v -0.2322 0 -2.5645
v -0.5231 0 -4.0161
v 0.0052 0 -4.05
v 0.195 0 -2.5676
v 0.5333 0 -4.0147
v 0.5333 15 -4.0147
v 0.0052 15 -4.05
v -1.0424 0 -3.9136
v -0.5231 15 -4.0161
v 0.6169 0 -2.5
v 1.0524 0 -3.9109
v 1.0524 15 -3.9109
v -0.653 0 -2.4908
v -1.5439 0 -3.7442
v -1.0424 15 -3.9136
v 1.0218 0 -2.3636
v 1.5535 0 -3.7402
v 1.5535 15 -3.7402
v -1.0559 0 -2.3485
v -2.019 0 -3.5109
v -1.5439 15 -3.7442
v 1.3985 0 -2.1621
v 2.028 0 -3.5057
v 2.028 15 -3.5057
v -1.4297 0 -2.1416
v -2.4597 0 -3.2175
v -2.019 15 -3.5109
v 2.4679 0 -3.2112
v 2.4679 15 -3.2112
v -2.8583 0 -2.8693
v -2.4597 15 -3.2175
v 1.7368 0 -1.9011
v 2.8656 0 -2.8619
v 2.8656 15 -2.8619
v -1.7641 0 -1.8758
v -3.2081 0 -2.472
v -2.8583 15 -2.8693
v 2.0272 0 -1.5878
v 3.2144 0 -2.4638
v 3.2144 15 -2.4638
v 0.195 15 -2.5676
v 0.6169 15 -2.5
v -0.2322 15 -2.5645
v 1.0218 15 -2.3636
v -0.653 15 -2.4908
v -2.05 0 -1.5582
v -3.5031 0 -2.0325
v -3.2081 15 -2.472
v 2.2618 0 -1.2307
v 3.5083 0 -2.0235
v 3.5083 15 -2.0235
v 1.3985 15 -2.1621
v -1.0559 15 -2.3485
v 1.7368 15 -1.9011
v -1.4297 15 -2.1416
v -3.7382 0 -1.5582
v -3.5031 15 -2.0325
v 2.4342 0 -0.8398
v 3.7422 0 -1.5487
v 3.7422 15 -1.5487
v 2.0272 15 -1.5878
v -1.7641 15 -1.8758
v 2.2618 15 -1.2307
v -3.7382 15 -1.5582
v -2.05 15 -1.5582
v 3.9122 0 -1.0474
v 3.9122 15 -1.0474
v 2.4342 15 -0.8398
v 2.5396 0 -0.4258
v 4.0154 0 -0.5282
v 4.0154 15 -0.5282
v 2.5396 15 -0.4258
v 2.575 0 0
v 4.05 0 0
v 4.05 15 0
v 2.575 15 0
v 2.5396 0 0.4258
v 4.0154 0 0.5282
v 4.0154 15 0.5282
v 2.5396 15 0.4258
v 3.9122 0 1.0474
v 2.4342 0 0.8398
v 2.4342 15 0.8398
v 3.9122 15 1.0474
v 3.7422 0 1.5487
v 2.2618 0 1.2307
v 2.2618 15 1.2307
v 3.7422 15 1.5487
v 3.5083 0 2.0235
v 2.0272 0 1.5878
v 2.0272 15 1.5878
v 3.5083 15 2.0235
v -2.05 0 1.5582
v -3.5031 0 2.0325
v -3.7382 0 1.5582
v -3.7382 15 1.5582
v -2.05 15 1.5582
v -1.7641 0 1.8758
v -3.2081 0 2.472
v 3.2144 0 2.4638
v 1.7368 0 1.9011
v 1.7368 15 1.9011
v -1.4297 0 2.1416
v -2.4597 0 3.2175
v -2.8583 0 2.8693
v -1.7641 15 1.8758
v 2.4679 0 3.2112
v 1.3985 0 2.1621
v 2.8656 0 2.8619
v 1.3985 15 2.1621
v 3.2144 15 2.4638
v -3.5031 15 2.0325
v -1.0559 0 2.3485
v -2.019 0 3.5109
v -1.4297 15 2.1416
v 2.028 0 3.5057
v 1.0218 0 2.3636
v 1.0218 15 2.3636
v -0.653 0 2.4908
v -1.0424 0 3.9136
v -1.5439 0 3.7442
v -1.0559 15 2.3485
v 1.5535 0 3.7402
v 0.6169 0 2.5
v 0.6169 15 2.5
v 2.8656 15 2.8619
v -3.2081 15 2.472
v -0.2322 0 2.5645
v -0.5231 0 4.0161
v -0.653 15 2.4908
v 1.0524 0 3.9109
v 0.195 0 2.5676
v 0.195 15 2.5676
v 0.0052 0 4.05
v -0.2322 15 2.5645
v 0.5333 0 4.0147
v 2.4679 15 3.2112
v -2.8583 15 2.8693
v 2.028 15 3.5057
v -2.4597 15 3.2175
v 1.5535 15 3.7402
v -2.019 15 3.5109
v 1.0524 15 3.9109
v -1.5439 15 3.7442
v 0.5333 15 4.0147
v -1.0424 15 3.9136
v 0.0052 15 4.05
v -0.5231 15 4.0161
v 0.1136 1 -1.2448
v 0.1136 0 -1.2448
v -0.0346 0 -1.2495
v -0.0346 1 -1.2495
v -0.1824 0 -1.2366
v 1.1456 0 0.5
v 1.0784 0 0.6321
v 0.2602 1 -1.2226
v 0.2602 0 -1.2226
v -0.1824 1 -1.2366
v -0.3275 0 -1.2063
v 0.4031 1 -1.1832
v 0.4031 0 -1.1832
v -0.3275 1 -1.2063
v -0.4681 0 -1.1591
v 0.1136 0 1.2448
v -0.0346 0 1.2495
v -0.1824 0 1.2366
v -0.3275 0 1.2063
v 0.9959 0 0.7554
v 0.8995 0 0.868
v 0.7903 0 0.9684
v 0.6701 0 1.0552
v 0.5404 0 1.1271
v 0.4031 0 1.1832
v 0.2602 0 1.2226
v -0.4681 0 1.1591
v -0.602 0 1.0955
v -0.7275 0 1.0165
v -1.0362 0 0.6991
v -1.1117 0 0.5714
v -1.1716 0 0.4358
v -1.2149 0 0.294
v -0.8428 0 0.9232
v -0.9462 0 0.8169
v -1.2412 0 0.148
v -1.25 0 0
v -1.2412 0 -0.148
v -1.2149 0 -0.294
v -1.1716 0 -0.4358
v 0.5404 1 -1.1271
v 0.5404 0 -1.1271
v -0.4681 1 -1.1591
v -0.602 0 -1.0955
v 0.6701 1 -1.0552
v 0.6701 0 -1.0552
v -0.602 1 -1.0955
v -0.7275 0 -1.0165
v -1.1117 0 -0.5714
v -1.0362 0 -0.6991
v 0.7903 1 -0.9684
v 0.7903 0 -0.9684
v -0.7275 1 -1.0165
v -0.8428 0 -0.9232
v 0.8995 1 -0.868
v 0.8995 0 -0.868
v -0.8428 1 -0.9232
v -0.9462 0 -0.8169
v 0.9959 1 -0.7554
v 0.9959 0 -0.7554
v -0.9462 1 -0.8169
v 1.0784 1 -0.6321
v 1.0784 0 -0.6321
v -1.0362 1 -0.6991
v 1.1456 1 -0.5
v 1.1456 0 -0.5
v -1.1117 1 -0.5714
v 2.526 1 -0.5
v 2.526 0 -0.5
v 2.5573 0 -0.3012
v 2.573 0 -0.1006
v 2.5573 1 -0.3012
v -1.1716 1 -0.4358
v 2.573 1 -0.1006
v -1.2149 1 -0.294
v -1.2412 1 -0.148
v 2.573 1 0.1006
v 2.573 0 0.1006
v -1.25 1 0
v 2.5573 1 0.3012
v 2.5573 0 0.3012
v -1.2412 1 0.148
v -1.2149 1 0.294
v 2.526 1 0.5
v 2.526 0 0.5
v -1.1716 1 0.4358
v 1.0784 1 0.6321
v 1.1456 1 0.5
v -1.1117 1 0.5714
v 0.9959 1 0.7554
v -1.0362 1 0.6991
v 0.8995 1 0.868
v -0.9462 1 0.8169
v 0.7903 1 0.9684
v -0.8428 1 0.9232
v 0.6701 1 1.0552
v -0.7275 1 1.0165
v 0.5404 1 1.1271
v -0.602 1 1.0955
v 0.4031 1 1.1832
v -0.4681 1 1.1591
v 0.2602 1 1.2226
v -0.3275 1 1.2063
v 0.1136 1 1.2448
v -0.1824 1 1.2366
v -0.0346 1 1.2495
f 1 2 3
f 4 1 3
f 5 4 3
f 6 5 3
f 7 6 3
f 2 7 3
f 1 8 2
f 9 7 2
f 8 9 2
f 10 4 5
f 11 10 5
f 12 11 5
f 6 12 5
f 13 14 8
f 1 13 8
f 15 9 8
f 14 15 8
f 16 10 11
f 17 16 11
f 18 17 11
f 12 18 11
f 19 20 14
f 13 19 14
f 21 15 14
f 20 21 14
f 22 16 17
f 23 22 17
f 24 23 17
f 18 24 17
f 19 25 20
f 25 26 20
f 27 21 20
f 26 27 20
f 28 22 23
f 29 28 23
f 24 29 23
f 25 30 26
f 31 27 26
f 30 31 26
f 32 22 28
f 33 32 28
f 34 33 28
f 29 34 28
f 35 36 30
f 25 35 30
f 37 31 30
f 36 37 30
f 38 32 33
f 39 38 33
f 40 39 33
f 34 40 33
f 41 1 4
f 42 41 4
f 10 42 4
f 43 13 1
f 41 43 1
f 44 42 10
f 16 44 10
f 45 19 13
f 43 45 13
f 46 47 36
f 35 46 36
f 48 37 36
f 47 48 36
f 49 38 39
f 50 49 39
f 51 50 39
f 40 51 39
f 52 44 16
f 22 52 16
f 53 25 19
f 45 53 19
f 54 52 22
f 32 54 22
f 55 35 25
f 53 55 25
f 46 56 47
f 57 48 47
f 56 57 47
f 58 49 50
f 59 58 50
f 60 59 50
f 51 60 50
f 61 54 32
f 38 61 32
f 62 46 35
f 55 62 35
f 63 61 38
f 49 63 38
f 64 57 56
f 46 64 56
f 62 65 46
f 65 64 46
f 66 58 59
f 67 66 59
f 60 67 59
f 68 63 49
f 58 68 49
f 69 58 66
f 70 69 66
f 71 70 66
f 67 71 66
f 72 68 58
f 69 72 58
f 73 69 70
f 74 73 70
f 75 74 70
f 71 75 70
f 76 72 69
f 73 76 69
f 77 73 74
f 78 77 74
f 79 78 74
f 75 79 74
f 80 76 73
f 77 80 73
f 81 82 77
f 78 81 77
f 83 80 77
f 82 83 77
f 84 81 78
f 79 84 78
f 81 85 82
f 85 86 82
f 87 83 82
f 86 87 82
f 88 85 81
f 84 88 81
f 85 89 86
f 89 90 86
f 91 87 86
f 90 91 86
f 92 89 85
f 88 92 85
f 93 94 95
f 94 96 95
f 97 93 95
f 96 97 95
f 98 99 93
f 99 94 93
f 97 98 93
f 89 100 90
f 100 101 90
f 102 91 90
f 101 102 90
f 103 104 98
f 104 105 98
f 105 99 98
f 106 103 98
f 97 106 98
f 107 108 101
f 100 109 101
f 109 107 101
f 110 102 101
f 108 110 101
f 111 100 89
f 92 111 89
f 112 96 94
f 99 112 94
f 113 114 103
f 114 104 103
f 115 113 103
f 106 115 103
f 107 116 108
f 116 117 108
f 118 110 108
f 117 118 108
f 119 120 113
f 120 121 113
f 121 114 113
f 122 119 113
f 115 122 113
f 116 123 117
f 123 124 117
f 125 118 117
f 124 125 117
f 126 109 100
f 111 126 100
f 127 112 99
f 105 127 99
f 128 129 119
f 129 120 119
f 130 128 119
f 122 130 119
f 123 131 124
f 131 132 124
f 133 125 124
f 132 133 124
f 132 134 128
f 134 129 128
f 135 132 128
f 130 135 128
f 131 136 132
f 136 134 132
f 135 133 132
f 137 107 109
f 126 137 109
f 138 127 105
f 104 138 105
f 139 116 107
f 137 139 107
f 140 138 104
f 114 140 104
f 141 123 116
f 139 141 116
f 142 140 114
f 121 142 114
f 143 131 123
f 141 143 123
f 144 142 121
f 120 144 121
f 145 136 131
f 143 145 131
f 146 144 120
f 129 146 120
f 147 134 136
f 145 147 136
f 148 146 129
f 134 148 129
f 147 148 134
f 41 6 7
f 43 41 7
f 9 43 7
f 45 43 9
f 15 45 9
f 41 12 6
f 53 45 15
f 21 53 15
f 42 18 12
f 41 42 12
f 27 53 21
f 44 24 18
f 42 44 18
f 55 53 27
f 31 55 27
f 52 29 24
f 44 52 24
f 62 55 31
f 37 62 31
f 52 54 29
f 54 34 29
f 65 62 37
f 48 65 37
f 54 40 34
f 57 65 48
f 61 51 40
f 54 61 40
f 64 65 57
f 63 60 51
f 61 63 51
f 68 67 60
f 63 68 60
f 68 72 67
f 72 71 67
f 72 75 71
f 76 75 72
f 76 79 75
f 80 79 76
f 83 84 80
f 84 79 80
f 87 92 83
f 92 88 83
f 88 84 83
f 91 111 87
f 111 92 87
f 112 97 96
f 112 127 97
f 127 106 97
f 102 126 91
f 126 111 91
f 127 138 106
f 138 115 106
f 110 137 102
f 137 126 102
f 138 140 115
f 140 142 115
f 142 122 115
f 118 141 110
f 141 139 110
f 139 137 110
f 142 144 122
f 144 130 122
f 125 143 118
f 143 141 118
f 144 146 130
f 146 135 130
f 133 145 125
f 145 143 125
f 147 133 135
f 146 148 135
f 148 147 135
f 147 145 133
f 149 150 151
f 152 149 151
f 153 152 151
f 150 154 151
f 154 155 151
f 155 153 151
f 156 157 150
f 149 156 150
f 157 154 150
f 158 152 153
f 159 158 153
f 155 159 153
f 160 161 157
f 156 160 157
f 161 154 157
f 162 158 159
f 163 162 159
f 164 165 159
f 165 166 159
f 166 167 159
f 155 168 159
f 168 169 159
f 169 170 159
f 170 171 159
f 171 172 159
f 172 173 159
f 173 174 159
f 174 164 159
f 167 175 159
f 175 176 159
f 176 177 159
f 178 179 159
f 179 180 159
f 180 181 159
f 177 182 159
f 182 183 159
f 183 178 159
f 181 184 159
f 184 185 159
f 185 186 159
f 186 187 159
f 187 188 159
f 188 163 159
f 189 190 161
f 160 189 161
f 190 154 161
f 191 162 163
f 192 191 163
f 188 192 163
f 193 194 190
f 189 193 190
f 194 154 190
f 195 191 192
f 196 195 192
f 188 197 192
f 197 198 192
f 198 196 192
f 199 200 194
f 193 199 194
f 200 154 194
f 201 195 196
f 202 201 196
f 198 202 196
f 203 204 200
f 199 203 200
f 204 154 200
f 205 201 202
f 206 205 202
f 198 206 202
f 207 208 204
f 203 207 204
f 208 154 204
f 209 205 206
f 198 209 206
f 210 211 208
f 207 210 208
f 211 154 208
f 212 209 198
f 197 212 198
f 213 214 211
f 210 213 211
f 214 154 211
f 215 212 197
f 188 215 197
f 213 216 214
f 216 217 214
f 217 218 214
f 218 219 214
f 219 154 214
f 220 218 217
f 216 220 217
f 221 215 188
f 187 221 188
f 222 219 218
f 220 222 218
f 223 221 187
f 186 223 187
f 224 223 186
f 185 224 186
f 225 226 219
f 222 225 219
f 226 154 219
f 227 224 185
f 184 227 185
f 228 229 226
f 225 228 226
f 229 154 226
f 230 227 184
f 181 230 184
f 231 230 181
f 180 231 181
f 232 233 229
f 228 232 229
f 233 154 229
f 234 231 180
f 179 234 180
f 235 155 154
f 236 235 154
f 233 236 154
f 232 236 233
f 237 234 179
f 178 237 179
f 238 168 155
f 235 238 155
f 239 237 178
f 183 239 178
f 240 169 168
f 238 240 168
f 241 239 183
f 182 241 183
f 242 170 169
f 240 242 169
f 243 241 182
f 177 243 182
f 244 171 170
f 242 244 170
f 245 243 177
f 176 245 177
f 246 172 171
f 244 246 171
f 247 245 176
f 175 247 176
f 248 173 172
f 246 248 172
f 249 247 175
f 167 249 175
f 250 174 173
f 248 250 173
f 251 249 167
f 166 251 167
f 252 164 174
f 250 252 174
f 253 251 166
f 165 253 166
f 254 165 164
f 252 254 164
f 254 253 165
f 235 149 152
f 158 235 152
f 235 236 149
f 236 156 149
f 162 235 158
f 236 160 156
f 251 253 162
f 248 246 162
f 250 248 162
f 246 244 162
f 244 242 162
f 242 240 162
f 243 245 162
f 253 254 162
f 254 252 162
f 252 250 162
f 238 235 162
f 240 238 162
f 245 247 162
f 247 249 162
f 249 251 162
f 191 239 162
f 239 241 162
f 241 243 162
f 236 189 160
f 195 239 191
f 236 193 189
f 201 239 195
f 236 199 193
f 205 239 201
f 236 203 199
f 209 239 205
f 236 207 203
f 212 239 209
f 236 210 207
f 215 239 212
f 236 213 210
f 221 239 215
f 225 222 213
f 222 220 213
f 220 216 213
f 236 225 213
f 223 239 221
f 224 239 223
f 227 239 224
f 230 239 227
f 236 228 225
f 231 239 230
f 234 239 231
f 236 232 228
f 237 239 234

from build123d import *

# Parameters (mm, degrees)
SKETCH_1_R          = 4.05
SKETCH_1_R_2        = 2.575
EXTRUDE_1_DEPTH     = 15
SKETCH_2_W          = 2
SKETCH_2_H          = 3.116488408
CUT_EXTRUDE_1_DEPTH = 15
EXTRUDE_2_DEPTH     = 1


with BuildPart() as part:
    # 草圖1 → 填料-伸長1 (new body)
    with BuildSketch(Plane(origin=(0, 0, 0), x_dir=(1, 0, 0), z_dir=(0, 1, 0))):
        Circle(SKETCH_1_R)
        Circle(SKETCH_1_R_2, mode=Mode.SUBTRACT)
    extrude(amount=EXTRUDE_1_DEPTH)

    # 草圖2 → 除料-伸長1 (cut)
    with BuildSketch(Plane(origin=(0, 15, 0), x_dir=(1, 0, 0), z_dir=(0, 1, 0))):
        with Locations((-3.05, 0)):
            Rectangle(SKETCH_2_W, SKETCH_2_H)
    extrude(amount=-CUT_EXTRUDE_1_DEPTH, mode=Mode.SUBTRACT)


with BuildPart() as body_2:
    # 草圖3 → 填料-伸長2 (new body)
    with BuildSketch(Plane.XZ):
        with BuildLine():
            Line((1.145643924, 0.5), (2.525989905, 0.5))
            ThreePointArc((2.525989905, 0.5), (2.575, 0), (2.525989905, -0.5))
            Line((2.525989905, -0.5), (1.145643924, -0.5))
            ThreePointArc((1.145643924, -0.5), (-1.25, 0), (1.145643924, 0.5))
        make_face()
    extrude(amount=-EXTRUDE_2_DEPTH)


solid = Compound([part.part, body_2.part])
